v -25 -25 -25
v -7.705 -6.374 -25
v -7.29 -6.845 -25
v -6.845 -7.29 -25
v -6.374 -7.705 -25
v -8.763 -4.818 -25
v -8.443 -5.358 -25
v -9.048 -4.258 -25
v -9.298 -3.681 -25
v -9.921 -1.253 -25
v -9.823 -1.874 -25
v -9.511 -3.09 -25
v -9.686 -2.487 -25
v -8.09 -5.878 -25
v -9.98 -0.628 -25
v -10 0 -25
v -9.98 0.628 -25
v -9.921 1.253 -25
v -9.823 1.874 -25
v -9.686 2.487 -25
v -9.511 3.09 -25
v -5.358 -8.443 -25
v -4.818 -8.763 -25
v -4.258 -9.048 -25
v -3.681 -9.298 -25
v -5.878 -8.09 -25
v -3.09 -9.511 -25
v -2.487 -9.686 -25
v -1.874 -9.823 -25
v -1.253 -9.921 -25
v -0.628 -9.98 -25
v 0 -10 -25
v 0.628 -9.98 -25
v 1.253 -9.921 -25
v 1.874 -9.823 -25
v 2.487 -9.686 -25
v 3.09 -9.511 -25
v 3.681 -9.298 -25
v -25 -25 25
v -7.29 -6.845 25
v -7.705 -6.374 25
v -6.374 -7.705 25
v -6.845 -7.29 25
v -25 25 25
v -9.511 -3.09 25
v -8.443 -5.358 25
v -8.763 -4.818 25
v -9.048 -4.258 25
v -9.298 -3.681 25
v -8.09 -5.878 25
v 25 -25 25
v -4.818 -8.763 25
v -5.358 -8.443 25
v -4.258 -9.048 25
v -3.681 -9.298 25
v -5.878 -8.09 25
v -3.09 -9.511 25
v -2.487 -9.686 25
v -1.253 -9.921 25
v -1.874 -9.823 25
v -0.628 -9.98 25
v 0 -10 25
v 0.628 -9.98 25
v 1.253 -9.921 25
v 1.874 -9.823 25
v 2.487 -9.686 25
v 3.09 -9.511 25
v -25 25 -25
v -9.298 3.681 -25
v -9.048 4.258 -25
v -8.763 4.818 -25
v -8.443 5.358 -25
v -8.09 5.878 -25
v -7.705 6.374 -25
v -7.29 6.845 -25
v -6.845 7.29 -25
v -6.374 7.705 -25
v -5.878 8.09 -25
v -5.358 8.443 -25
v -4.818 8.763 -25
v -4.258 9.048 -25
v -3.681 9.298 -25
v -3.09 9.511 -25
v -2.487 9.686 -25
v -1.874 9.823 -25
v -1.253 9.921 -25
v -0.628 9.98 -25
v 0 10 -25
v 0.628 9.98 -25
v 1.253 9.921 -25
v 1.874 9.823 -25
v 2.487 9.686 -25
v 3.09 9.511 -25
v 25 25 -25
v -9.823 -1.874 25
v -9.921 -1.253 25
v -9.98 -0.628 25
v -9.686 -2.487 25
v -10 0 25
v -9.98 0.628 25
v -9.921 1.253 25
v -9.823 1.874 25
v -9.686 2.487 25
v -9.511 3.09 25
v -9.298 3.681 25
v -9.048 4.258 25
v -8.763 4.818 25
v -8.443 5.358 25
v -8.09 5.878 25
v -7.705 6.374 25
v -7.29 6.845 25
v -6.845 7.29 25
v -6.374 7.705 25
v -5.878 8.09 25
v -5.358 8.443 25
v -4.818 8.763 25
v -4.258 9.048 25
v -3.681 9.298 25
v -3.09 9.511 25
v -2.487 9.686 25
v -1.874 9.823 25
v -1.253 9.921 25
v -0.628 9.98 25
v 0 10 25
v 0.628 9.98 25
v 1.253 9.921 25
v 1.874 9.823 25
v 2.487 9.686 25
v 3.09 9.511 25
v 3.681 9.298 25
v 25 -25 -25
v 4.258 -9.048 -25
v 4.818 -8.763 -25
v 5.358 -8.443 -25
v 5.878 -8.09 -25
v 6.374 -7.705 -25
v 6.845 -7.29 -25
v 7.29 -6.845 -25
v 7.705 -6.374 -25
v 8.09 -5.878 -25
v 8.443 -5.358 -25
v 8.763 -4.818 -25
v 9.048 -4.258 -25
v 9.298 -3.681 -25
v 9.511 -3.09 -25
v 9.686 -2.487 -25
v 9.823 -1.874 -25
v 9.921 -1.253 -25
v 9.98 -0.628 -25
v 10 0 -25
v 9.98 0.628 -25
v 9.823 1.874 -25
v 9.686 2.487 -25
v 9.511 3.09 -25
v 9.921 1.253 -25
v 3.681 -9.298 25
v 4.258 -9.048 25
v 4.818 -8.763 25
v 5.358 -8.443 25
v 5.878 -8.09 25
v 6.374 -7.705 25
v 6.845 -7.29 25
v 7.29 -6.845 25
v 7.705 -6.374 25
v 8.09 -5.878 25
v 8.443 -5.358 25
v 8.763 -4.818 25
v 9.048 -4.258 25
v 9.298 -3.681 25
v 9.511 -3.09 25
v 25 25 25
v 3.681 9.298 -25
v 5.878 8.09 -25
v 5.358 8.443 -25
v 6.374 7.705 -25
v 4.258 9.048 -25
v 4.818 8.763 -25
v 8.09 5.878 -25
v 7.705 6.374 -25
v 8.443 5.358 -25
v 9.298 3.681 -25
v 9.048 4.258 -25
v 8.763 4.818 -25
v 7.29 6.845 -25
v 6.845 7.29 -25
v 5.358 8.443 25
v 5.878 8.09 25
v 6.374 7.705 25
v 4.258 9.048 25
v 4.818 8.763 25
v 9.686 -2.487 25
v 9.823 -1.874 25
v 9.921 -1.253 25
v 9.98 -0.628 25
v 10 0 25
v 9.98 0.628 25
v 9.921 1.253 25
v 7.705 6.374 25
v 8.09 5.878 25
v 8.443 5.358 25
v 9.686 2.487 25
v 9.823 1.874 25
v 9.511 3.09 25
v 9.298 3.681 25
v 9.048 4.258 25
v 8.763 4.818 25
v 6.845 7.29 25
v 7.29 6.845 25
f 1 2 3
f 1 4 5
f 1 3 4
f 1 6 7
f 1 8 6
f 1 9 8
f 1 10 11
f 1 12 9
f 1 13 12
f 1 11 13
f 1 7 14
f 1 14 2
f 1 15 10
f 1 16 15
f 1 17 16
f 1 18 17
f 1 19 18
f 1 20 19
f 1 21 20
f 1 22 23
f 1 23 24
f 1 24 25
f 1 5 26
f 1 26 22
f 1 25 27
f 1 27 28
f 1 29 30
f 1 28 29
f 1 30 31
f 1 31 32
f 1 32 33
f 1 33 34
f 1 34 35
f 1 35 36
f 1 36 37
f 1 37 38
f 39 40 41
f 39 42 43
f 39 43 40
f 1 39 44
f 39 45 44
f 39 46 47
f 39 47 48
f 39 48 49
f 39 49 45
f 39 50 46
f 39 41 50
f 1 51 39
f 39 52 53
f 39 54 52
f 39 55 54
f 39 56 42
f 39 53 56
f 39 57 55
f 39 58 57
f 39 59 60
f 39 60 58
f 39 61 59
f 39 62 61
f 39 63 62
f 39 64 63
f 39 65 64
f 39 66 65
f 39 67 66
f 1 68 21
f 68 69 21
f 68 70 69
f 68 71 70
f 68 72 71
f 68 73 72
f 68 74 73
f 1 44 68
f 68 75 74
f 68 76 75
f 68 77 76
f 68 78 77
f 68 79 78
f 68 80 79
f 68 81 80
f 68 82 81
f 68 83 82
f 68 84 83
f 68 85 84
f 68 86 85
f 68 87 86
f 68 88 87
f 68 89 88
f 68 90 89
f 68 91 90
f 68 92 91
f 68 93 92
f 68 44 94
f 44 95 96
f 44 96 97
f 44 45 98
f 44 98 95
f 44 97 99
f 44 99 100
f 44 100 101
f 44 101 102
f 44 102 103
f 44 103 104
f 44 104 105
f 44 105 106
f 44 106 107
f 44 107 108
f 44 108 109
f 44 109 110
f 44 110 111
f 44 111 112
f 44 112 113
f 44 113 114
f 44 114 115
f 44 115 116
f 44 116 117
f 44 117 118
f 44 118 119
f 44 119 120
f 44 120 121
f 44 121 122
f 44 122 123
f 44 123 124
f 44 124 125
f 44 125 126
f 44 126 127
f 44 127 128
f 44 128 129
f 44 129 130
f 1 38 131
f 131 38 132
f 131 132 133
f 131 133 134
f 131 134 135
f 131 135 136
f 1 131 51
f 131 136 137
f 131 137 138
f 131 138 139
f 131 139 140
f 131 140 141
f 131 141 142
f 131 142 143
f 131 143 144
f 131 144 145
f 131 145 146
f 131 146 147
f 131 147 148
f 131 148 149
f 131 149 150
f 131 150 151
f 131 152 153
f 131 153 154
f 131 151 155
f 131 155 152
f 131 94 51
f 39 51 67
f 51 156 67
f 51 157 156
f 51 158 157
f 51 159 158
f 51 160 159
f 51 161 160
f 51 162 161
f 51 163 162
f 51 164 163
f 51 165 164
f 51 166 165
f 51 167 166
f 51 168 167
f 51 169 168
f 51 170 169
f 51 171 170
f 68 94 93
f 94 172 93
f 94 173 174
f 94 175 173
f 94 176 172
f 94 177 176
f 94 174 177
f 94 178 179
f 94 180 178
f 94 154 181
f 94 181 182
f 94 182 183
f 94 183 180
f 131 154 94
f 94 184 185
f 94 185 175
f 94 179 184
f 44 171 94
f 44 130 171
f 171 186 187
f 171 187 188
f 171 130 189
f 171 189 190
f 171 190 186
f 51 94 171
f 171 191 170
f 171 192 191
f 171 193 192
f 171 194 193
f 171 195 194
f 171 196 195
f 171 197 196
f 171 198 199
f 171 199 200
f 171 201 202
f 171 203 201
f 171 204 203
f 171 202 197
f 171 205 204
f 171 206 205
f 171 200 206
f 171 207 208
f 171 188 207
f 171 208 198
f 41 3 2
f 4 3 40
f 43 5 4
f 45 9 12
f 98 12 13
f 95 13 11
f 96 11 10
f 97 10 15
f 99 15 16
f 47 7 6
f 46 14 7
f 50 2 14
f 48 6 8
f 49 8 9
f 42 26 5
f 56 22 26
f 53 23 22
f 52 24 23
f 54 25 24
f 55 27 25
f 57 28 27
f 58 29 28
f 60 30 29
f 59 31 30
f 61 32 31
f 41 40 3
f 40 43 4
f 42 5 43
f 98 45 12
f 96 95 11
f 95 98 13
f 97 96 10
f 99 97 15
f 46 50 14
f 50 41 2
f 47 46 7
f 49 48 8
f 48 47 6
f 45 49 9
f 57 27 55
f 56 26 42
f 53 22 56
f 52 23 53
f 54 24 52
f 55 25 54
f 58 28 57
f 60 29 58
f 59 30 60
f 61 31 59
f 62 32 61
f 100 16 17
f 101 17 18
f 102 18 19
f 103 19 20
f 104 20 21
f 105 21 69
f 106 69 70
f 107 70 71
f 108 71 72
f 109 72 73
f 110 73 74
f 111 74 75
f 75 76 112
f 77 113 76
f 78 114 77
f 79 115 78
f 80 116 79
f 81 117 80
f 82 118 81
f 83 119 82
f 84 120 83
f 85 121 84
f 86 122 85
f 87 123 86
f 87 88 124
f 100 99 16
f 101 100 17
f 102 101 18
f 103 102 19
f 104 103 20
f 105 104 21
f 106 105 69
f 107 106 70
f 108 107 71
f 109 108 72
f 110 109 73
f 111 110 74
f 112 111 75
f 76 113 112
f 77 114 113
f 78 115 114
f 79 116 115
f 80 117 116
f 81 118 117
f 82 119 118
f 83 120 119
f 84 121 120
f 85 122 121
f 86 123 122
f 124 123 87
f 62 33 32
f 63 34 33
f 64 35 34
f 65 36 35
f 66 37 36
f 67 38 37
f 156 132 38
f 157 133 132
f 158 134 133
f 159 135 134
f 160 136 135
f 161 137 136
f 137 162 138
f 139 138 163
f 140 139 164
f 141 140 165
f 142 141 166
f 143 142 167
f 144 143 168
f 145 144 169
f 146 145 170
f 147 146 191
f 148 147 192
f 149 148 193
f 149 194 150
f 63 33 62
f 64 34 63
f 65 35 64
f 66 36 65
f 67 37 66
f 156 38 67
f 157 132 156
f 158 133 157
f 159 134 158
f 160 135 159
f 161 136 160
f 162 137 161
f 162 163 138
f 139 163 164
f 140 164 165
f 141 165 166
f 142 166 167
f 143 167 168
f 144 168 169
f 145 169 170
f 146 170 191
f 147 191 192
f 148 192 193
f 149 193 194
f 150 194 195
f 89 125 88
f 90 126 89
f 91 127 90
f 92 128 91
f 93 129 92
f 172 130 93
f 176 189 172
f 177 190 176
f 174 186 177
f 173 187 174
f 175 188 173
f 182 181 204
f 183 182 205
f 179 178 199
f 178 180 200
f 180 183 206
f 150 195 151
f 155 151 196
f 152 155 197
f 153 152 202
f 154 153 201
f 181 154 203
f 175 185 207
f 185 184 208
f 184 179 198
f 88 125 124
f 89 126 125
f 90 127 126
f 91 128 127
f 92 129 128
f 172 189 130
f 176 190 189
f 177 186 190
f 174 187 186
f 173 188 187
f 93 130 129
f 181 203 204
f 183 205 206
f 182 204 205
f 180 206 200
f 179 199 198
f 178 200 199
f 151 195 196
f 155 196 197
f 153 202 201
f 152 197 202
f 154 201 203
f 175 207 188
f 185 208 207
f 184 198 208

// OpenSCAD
$fn = 100;

difference() {
    cube([50, 50, 50], center = true);
    cylinder(h = 60, d = 20, center = true);
}
